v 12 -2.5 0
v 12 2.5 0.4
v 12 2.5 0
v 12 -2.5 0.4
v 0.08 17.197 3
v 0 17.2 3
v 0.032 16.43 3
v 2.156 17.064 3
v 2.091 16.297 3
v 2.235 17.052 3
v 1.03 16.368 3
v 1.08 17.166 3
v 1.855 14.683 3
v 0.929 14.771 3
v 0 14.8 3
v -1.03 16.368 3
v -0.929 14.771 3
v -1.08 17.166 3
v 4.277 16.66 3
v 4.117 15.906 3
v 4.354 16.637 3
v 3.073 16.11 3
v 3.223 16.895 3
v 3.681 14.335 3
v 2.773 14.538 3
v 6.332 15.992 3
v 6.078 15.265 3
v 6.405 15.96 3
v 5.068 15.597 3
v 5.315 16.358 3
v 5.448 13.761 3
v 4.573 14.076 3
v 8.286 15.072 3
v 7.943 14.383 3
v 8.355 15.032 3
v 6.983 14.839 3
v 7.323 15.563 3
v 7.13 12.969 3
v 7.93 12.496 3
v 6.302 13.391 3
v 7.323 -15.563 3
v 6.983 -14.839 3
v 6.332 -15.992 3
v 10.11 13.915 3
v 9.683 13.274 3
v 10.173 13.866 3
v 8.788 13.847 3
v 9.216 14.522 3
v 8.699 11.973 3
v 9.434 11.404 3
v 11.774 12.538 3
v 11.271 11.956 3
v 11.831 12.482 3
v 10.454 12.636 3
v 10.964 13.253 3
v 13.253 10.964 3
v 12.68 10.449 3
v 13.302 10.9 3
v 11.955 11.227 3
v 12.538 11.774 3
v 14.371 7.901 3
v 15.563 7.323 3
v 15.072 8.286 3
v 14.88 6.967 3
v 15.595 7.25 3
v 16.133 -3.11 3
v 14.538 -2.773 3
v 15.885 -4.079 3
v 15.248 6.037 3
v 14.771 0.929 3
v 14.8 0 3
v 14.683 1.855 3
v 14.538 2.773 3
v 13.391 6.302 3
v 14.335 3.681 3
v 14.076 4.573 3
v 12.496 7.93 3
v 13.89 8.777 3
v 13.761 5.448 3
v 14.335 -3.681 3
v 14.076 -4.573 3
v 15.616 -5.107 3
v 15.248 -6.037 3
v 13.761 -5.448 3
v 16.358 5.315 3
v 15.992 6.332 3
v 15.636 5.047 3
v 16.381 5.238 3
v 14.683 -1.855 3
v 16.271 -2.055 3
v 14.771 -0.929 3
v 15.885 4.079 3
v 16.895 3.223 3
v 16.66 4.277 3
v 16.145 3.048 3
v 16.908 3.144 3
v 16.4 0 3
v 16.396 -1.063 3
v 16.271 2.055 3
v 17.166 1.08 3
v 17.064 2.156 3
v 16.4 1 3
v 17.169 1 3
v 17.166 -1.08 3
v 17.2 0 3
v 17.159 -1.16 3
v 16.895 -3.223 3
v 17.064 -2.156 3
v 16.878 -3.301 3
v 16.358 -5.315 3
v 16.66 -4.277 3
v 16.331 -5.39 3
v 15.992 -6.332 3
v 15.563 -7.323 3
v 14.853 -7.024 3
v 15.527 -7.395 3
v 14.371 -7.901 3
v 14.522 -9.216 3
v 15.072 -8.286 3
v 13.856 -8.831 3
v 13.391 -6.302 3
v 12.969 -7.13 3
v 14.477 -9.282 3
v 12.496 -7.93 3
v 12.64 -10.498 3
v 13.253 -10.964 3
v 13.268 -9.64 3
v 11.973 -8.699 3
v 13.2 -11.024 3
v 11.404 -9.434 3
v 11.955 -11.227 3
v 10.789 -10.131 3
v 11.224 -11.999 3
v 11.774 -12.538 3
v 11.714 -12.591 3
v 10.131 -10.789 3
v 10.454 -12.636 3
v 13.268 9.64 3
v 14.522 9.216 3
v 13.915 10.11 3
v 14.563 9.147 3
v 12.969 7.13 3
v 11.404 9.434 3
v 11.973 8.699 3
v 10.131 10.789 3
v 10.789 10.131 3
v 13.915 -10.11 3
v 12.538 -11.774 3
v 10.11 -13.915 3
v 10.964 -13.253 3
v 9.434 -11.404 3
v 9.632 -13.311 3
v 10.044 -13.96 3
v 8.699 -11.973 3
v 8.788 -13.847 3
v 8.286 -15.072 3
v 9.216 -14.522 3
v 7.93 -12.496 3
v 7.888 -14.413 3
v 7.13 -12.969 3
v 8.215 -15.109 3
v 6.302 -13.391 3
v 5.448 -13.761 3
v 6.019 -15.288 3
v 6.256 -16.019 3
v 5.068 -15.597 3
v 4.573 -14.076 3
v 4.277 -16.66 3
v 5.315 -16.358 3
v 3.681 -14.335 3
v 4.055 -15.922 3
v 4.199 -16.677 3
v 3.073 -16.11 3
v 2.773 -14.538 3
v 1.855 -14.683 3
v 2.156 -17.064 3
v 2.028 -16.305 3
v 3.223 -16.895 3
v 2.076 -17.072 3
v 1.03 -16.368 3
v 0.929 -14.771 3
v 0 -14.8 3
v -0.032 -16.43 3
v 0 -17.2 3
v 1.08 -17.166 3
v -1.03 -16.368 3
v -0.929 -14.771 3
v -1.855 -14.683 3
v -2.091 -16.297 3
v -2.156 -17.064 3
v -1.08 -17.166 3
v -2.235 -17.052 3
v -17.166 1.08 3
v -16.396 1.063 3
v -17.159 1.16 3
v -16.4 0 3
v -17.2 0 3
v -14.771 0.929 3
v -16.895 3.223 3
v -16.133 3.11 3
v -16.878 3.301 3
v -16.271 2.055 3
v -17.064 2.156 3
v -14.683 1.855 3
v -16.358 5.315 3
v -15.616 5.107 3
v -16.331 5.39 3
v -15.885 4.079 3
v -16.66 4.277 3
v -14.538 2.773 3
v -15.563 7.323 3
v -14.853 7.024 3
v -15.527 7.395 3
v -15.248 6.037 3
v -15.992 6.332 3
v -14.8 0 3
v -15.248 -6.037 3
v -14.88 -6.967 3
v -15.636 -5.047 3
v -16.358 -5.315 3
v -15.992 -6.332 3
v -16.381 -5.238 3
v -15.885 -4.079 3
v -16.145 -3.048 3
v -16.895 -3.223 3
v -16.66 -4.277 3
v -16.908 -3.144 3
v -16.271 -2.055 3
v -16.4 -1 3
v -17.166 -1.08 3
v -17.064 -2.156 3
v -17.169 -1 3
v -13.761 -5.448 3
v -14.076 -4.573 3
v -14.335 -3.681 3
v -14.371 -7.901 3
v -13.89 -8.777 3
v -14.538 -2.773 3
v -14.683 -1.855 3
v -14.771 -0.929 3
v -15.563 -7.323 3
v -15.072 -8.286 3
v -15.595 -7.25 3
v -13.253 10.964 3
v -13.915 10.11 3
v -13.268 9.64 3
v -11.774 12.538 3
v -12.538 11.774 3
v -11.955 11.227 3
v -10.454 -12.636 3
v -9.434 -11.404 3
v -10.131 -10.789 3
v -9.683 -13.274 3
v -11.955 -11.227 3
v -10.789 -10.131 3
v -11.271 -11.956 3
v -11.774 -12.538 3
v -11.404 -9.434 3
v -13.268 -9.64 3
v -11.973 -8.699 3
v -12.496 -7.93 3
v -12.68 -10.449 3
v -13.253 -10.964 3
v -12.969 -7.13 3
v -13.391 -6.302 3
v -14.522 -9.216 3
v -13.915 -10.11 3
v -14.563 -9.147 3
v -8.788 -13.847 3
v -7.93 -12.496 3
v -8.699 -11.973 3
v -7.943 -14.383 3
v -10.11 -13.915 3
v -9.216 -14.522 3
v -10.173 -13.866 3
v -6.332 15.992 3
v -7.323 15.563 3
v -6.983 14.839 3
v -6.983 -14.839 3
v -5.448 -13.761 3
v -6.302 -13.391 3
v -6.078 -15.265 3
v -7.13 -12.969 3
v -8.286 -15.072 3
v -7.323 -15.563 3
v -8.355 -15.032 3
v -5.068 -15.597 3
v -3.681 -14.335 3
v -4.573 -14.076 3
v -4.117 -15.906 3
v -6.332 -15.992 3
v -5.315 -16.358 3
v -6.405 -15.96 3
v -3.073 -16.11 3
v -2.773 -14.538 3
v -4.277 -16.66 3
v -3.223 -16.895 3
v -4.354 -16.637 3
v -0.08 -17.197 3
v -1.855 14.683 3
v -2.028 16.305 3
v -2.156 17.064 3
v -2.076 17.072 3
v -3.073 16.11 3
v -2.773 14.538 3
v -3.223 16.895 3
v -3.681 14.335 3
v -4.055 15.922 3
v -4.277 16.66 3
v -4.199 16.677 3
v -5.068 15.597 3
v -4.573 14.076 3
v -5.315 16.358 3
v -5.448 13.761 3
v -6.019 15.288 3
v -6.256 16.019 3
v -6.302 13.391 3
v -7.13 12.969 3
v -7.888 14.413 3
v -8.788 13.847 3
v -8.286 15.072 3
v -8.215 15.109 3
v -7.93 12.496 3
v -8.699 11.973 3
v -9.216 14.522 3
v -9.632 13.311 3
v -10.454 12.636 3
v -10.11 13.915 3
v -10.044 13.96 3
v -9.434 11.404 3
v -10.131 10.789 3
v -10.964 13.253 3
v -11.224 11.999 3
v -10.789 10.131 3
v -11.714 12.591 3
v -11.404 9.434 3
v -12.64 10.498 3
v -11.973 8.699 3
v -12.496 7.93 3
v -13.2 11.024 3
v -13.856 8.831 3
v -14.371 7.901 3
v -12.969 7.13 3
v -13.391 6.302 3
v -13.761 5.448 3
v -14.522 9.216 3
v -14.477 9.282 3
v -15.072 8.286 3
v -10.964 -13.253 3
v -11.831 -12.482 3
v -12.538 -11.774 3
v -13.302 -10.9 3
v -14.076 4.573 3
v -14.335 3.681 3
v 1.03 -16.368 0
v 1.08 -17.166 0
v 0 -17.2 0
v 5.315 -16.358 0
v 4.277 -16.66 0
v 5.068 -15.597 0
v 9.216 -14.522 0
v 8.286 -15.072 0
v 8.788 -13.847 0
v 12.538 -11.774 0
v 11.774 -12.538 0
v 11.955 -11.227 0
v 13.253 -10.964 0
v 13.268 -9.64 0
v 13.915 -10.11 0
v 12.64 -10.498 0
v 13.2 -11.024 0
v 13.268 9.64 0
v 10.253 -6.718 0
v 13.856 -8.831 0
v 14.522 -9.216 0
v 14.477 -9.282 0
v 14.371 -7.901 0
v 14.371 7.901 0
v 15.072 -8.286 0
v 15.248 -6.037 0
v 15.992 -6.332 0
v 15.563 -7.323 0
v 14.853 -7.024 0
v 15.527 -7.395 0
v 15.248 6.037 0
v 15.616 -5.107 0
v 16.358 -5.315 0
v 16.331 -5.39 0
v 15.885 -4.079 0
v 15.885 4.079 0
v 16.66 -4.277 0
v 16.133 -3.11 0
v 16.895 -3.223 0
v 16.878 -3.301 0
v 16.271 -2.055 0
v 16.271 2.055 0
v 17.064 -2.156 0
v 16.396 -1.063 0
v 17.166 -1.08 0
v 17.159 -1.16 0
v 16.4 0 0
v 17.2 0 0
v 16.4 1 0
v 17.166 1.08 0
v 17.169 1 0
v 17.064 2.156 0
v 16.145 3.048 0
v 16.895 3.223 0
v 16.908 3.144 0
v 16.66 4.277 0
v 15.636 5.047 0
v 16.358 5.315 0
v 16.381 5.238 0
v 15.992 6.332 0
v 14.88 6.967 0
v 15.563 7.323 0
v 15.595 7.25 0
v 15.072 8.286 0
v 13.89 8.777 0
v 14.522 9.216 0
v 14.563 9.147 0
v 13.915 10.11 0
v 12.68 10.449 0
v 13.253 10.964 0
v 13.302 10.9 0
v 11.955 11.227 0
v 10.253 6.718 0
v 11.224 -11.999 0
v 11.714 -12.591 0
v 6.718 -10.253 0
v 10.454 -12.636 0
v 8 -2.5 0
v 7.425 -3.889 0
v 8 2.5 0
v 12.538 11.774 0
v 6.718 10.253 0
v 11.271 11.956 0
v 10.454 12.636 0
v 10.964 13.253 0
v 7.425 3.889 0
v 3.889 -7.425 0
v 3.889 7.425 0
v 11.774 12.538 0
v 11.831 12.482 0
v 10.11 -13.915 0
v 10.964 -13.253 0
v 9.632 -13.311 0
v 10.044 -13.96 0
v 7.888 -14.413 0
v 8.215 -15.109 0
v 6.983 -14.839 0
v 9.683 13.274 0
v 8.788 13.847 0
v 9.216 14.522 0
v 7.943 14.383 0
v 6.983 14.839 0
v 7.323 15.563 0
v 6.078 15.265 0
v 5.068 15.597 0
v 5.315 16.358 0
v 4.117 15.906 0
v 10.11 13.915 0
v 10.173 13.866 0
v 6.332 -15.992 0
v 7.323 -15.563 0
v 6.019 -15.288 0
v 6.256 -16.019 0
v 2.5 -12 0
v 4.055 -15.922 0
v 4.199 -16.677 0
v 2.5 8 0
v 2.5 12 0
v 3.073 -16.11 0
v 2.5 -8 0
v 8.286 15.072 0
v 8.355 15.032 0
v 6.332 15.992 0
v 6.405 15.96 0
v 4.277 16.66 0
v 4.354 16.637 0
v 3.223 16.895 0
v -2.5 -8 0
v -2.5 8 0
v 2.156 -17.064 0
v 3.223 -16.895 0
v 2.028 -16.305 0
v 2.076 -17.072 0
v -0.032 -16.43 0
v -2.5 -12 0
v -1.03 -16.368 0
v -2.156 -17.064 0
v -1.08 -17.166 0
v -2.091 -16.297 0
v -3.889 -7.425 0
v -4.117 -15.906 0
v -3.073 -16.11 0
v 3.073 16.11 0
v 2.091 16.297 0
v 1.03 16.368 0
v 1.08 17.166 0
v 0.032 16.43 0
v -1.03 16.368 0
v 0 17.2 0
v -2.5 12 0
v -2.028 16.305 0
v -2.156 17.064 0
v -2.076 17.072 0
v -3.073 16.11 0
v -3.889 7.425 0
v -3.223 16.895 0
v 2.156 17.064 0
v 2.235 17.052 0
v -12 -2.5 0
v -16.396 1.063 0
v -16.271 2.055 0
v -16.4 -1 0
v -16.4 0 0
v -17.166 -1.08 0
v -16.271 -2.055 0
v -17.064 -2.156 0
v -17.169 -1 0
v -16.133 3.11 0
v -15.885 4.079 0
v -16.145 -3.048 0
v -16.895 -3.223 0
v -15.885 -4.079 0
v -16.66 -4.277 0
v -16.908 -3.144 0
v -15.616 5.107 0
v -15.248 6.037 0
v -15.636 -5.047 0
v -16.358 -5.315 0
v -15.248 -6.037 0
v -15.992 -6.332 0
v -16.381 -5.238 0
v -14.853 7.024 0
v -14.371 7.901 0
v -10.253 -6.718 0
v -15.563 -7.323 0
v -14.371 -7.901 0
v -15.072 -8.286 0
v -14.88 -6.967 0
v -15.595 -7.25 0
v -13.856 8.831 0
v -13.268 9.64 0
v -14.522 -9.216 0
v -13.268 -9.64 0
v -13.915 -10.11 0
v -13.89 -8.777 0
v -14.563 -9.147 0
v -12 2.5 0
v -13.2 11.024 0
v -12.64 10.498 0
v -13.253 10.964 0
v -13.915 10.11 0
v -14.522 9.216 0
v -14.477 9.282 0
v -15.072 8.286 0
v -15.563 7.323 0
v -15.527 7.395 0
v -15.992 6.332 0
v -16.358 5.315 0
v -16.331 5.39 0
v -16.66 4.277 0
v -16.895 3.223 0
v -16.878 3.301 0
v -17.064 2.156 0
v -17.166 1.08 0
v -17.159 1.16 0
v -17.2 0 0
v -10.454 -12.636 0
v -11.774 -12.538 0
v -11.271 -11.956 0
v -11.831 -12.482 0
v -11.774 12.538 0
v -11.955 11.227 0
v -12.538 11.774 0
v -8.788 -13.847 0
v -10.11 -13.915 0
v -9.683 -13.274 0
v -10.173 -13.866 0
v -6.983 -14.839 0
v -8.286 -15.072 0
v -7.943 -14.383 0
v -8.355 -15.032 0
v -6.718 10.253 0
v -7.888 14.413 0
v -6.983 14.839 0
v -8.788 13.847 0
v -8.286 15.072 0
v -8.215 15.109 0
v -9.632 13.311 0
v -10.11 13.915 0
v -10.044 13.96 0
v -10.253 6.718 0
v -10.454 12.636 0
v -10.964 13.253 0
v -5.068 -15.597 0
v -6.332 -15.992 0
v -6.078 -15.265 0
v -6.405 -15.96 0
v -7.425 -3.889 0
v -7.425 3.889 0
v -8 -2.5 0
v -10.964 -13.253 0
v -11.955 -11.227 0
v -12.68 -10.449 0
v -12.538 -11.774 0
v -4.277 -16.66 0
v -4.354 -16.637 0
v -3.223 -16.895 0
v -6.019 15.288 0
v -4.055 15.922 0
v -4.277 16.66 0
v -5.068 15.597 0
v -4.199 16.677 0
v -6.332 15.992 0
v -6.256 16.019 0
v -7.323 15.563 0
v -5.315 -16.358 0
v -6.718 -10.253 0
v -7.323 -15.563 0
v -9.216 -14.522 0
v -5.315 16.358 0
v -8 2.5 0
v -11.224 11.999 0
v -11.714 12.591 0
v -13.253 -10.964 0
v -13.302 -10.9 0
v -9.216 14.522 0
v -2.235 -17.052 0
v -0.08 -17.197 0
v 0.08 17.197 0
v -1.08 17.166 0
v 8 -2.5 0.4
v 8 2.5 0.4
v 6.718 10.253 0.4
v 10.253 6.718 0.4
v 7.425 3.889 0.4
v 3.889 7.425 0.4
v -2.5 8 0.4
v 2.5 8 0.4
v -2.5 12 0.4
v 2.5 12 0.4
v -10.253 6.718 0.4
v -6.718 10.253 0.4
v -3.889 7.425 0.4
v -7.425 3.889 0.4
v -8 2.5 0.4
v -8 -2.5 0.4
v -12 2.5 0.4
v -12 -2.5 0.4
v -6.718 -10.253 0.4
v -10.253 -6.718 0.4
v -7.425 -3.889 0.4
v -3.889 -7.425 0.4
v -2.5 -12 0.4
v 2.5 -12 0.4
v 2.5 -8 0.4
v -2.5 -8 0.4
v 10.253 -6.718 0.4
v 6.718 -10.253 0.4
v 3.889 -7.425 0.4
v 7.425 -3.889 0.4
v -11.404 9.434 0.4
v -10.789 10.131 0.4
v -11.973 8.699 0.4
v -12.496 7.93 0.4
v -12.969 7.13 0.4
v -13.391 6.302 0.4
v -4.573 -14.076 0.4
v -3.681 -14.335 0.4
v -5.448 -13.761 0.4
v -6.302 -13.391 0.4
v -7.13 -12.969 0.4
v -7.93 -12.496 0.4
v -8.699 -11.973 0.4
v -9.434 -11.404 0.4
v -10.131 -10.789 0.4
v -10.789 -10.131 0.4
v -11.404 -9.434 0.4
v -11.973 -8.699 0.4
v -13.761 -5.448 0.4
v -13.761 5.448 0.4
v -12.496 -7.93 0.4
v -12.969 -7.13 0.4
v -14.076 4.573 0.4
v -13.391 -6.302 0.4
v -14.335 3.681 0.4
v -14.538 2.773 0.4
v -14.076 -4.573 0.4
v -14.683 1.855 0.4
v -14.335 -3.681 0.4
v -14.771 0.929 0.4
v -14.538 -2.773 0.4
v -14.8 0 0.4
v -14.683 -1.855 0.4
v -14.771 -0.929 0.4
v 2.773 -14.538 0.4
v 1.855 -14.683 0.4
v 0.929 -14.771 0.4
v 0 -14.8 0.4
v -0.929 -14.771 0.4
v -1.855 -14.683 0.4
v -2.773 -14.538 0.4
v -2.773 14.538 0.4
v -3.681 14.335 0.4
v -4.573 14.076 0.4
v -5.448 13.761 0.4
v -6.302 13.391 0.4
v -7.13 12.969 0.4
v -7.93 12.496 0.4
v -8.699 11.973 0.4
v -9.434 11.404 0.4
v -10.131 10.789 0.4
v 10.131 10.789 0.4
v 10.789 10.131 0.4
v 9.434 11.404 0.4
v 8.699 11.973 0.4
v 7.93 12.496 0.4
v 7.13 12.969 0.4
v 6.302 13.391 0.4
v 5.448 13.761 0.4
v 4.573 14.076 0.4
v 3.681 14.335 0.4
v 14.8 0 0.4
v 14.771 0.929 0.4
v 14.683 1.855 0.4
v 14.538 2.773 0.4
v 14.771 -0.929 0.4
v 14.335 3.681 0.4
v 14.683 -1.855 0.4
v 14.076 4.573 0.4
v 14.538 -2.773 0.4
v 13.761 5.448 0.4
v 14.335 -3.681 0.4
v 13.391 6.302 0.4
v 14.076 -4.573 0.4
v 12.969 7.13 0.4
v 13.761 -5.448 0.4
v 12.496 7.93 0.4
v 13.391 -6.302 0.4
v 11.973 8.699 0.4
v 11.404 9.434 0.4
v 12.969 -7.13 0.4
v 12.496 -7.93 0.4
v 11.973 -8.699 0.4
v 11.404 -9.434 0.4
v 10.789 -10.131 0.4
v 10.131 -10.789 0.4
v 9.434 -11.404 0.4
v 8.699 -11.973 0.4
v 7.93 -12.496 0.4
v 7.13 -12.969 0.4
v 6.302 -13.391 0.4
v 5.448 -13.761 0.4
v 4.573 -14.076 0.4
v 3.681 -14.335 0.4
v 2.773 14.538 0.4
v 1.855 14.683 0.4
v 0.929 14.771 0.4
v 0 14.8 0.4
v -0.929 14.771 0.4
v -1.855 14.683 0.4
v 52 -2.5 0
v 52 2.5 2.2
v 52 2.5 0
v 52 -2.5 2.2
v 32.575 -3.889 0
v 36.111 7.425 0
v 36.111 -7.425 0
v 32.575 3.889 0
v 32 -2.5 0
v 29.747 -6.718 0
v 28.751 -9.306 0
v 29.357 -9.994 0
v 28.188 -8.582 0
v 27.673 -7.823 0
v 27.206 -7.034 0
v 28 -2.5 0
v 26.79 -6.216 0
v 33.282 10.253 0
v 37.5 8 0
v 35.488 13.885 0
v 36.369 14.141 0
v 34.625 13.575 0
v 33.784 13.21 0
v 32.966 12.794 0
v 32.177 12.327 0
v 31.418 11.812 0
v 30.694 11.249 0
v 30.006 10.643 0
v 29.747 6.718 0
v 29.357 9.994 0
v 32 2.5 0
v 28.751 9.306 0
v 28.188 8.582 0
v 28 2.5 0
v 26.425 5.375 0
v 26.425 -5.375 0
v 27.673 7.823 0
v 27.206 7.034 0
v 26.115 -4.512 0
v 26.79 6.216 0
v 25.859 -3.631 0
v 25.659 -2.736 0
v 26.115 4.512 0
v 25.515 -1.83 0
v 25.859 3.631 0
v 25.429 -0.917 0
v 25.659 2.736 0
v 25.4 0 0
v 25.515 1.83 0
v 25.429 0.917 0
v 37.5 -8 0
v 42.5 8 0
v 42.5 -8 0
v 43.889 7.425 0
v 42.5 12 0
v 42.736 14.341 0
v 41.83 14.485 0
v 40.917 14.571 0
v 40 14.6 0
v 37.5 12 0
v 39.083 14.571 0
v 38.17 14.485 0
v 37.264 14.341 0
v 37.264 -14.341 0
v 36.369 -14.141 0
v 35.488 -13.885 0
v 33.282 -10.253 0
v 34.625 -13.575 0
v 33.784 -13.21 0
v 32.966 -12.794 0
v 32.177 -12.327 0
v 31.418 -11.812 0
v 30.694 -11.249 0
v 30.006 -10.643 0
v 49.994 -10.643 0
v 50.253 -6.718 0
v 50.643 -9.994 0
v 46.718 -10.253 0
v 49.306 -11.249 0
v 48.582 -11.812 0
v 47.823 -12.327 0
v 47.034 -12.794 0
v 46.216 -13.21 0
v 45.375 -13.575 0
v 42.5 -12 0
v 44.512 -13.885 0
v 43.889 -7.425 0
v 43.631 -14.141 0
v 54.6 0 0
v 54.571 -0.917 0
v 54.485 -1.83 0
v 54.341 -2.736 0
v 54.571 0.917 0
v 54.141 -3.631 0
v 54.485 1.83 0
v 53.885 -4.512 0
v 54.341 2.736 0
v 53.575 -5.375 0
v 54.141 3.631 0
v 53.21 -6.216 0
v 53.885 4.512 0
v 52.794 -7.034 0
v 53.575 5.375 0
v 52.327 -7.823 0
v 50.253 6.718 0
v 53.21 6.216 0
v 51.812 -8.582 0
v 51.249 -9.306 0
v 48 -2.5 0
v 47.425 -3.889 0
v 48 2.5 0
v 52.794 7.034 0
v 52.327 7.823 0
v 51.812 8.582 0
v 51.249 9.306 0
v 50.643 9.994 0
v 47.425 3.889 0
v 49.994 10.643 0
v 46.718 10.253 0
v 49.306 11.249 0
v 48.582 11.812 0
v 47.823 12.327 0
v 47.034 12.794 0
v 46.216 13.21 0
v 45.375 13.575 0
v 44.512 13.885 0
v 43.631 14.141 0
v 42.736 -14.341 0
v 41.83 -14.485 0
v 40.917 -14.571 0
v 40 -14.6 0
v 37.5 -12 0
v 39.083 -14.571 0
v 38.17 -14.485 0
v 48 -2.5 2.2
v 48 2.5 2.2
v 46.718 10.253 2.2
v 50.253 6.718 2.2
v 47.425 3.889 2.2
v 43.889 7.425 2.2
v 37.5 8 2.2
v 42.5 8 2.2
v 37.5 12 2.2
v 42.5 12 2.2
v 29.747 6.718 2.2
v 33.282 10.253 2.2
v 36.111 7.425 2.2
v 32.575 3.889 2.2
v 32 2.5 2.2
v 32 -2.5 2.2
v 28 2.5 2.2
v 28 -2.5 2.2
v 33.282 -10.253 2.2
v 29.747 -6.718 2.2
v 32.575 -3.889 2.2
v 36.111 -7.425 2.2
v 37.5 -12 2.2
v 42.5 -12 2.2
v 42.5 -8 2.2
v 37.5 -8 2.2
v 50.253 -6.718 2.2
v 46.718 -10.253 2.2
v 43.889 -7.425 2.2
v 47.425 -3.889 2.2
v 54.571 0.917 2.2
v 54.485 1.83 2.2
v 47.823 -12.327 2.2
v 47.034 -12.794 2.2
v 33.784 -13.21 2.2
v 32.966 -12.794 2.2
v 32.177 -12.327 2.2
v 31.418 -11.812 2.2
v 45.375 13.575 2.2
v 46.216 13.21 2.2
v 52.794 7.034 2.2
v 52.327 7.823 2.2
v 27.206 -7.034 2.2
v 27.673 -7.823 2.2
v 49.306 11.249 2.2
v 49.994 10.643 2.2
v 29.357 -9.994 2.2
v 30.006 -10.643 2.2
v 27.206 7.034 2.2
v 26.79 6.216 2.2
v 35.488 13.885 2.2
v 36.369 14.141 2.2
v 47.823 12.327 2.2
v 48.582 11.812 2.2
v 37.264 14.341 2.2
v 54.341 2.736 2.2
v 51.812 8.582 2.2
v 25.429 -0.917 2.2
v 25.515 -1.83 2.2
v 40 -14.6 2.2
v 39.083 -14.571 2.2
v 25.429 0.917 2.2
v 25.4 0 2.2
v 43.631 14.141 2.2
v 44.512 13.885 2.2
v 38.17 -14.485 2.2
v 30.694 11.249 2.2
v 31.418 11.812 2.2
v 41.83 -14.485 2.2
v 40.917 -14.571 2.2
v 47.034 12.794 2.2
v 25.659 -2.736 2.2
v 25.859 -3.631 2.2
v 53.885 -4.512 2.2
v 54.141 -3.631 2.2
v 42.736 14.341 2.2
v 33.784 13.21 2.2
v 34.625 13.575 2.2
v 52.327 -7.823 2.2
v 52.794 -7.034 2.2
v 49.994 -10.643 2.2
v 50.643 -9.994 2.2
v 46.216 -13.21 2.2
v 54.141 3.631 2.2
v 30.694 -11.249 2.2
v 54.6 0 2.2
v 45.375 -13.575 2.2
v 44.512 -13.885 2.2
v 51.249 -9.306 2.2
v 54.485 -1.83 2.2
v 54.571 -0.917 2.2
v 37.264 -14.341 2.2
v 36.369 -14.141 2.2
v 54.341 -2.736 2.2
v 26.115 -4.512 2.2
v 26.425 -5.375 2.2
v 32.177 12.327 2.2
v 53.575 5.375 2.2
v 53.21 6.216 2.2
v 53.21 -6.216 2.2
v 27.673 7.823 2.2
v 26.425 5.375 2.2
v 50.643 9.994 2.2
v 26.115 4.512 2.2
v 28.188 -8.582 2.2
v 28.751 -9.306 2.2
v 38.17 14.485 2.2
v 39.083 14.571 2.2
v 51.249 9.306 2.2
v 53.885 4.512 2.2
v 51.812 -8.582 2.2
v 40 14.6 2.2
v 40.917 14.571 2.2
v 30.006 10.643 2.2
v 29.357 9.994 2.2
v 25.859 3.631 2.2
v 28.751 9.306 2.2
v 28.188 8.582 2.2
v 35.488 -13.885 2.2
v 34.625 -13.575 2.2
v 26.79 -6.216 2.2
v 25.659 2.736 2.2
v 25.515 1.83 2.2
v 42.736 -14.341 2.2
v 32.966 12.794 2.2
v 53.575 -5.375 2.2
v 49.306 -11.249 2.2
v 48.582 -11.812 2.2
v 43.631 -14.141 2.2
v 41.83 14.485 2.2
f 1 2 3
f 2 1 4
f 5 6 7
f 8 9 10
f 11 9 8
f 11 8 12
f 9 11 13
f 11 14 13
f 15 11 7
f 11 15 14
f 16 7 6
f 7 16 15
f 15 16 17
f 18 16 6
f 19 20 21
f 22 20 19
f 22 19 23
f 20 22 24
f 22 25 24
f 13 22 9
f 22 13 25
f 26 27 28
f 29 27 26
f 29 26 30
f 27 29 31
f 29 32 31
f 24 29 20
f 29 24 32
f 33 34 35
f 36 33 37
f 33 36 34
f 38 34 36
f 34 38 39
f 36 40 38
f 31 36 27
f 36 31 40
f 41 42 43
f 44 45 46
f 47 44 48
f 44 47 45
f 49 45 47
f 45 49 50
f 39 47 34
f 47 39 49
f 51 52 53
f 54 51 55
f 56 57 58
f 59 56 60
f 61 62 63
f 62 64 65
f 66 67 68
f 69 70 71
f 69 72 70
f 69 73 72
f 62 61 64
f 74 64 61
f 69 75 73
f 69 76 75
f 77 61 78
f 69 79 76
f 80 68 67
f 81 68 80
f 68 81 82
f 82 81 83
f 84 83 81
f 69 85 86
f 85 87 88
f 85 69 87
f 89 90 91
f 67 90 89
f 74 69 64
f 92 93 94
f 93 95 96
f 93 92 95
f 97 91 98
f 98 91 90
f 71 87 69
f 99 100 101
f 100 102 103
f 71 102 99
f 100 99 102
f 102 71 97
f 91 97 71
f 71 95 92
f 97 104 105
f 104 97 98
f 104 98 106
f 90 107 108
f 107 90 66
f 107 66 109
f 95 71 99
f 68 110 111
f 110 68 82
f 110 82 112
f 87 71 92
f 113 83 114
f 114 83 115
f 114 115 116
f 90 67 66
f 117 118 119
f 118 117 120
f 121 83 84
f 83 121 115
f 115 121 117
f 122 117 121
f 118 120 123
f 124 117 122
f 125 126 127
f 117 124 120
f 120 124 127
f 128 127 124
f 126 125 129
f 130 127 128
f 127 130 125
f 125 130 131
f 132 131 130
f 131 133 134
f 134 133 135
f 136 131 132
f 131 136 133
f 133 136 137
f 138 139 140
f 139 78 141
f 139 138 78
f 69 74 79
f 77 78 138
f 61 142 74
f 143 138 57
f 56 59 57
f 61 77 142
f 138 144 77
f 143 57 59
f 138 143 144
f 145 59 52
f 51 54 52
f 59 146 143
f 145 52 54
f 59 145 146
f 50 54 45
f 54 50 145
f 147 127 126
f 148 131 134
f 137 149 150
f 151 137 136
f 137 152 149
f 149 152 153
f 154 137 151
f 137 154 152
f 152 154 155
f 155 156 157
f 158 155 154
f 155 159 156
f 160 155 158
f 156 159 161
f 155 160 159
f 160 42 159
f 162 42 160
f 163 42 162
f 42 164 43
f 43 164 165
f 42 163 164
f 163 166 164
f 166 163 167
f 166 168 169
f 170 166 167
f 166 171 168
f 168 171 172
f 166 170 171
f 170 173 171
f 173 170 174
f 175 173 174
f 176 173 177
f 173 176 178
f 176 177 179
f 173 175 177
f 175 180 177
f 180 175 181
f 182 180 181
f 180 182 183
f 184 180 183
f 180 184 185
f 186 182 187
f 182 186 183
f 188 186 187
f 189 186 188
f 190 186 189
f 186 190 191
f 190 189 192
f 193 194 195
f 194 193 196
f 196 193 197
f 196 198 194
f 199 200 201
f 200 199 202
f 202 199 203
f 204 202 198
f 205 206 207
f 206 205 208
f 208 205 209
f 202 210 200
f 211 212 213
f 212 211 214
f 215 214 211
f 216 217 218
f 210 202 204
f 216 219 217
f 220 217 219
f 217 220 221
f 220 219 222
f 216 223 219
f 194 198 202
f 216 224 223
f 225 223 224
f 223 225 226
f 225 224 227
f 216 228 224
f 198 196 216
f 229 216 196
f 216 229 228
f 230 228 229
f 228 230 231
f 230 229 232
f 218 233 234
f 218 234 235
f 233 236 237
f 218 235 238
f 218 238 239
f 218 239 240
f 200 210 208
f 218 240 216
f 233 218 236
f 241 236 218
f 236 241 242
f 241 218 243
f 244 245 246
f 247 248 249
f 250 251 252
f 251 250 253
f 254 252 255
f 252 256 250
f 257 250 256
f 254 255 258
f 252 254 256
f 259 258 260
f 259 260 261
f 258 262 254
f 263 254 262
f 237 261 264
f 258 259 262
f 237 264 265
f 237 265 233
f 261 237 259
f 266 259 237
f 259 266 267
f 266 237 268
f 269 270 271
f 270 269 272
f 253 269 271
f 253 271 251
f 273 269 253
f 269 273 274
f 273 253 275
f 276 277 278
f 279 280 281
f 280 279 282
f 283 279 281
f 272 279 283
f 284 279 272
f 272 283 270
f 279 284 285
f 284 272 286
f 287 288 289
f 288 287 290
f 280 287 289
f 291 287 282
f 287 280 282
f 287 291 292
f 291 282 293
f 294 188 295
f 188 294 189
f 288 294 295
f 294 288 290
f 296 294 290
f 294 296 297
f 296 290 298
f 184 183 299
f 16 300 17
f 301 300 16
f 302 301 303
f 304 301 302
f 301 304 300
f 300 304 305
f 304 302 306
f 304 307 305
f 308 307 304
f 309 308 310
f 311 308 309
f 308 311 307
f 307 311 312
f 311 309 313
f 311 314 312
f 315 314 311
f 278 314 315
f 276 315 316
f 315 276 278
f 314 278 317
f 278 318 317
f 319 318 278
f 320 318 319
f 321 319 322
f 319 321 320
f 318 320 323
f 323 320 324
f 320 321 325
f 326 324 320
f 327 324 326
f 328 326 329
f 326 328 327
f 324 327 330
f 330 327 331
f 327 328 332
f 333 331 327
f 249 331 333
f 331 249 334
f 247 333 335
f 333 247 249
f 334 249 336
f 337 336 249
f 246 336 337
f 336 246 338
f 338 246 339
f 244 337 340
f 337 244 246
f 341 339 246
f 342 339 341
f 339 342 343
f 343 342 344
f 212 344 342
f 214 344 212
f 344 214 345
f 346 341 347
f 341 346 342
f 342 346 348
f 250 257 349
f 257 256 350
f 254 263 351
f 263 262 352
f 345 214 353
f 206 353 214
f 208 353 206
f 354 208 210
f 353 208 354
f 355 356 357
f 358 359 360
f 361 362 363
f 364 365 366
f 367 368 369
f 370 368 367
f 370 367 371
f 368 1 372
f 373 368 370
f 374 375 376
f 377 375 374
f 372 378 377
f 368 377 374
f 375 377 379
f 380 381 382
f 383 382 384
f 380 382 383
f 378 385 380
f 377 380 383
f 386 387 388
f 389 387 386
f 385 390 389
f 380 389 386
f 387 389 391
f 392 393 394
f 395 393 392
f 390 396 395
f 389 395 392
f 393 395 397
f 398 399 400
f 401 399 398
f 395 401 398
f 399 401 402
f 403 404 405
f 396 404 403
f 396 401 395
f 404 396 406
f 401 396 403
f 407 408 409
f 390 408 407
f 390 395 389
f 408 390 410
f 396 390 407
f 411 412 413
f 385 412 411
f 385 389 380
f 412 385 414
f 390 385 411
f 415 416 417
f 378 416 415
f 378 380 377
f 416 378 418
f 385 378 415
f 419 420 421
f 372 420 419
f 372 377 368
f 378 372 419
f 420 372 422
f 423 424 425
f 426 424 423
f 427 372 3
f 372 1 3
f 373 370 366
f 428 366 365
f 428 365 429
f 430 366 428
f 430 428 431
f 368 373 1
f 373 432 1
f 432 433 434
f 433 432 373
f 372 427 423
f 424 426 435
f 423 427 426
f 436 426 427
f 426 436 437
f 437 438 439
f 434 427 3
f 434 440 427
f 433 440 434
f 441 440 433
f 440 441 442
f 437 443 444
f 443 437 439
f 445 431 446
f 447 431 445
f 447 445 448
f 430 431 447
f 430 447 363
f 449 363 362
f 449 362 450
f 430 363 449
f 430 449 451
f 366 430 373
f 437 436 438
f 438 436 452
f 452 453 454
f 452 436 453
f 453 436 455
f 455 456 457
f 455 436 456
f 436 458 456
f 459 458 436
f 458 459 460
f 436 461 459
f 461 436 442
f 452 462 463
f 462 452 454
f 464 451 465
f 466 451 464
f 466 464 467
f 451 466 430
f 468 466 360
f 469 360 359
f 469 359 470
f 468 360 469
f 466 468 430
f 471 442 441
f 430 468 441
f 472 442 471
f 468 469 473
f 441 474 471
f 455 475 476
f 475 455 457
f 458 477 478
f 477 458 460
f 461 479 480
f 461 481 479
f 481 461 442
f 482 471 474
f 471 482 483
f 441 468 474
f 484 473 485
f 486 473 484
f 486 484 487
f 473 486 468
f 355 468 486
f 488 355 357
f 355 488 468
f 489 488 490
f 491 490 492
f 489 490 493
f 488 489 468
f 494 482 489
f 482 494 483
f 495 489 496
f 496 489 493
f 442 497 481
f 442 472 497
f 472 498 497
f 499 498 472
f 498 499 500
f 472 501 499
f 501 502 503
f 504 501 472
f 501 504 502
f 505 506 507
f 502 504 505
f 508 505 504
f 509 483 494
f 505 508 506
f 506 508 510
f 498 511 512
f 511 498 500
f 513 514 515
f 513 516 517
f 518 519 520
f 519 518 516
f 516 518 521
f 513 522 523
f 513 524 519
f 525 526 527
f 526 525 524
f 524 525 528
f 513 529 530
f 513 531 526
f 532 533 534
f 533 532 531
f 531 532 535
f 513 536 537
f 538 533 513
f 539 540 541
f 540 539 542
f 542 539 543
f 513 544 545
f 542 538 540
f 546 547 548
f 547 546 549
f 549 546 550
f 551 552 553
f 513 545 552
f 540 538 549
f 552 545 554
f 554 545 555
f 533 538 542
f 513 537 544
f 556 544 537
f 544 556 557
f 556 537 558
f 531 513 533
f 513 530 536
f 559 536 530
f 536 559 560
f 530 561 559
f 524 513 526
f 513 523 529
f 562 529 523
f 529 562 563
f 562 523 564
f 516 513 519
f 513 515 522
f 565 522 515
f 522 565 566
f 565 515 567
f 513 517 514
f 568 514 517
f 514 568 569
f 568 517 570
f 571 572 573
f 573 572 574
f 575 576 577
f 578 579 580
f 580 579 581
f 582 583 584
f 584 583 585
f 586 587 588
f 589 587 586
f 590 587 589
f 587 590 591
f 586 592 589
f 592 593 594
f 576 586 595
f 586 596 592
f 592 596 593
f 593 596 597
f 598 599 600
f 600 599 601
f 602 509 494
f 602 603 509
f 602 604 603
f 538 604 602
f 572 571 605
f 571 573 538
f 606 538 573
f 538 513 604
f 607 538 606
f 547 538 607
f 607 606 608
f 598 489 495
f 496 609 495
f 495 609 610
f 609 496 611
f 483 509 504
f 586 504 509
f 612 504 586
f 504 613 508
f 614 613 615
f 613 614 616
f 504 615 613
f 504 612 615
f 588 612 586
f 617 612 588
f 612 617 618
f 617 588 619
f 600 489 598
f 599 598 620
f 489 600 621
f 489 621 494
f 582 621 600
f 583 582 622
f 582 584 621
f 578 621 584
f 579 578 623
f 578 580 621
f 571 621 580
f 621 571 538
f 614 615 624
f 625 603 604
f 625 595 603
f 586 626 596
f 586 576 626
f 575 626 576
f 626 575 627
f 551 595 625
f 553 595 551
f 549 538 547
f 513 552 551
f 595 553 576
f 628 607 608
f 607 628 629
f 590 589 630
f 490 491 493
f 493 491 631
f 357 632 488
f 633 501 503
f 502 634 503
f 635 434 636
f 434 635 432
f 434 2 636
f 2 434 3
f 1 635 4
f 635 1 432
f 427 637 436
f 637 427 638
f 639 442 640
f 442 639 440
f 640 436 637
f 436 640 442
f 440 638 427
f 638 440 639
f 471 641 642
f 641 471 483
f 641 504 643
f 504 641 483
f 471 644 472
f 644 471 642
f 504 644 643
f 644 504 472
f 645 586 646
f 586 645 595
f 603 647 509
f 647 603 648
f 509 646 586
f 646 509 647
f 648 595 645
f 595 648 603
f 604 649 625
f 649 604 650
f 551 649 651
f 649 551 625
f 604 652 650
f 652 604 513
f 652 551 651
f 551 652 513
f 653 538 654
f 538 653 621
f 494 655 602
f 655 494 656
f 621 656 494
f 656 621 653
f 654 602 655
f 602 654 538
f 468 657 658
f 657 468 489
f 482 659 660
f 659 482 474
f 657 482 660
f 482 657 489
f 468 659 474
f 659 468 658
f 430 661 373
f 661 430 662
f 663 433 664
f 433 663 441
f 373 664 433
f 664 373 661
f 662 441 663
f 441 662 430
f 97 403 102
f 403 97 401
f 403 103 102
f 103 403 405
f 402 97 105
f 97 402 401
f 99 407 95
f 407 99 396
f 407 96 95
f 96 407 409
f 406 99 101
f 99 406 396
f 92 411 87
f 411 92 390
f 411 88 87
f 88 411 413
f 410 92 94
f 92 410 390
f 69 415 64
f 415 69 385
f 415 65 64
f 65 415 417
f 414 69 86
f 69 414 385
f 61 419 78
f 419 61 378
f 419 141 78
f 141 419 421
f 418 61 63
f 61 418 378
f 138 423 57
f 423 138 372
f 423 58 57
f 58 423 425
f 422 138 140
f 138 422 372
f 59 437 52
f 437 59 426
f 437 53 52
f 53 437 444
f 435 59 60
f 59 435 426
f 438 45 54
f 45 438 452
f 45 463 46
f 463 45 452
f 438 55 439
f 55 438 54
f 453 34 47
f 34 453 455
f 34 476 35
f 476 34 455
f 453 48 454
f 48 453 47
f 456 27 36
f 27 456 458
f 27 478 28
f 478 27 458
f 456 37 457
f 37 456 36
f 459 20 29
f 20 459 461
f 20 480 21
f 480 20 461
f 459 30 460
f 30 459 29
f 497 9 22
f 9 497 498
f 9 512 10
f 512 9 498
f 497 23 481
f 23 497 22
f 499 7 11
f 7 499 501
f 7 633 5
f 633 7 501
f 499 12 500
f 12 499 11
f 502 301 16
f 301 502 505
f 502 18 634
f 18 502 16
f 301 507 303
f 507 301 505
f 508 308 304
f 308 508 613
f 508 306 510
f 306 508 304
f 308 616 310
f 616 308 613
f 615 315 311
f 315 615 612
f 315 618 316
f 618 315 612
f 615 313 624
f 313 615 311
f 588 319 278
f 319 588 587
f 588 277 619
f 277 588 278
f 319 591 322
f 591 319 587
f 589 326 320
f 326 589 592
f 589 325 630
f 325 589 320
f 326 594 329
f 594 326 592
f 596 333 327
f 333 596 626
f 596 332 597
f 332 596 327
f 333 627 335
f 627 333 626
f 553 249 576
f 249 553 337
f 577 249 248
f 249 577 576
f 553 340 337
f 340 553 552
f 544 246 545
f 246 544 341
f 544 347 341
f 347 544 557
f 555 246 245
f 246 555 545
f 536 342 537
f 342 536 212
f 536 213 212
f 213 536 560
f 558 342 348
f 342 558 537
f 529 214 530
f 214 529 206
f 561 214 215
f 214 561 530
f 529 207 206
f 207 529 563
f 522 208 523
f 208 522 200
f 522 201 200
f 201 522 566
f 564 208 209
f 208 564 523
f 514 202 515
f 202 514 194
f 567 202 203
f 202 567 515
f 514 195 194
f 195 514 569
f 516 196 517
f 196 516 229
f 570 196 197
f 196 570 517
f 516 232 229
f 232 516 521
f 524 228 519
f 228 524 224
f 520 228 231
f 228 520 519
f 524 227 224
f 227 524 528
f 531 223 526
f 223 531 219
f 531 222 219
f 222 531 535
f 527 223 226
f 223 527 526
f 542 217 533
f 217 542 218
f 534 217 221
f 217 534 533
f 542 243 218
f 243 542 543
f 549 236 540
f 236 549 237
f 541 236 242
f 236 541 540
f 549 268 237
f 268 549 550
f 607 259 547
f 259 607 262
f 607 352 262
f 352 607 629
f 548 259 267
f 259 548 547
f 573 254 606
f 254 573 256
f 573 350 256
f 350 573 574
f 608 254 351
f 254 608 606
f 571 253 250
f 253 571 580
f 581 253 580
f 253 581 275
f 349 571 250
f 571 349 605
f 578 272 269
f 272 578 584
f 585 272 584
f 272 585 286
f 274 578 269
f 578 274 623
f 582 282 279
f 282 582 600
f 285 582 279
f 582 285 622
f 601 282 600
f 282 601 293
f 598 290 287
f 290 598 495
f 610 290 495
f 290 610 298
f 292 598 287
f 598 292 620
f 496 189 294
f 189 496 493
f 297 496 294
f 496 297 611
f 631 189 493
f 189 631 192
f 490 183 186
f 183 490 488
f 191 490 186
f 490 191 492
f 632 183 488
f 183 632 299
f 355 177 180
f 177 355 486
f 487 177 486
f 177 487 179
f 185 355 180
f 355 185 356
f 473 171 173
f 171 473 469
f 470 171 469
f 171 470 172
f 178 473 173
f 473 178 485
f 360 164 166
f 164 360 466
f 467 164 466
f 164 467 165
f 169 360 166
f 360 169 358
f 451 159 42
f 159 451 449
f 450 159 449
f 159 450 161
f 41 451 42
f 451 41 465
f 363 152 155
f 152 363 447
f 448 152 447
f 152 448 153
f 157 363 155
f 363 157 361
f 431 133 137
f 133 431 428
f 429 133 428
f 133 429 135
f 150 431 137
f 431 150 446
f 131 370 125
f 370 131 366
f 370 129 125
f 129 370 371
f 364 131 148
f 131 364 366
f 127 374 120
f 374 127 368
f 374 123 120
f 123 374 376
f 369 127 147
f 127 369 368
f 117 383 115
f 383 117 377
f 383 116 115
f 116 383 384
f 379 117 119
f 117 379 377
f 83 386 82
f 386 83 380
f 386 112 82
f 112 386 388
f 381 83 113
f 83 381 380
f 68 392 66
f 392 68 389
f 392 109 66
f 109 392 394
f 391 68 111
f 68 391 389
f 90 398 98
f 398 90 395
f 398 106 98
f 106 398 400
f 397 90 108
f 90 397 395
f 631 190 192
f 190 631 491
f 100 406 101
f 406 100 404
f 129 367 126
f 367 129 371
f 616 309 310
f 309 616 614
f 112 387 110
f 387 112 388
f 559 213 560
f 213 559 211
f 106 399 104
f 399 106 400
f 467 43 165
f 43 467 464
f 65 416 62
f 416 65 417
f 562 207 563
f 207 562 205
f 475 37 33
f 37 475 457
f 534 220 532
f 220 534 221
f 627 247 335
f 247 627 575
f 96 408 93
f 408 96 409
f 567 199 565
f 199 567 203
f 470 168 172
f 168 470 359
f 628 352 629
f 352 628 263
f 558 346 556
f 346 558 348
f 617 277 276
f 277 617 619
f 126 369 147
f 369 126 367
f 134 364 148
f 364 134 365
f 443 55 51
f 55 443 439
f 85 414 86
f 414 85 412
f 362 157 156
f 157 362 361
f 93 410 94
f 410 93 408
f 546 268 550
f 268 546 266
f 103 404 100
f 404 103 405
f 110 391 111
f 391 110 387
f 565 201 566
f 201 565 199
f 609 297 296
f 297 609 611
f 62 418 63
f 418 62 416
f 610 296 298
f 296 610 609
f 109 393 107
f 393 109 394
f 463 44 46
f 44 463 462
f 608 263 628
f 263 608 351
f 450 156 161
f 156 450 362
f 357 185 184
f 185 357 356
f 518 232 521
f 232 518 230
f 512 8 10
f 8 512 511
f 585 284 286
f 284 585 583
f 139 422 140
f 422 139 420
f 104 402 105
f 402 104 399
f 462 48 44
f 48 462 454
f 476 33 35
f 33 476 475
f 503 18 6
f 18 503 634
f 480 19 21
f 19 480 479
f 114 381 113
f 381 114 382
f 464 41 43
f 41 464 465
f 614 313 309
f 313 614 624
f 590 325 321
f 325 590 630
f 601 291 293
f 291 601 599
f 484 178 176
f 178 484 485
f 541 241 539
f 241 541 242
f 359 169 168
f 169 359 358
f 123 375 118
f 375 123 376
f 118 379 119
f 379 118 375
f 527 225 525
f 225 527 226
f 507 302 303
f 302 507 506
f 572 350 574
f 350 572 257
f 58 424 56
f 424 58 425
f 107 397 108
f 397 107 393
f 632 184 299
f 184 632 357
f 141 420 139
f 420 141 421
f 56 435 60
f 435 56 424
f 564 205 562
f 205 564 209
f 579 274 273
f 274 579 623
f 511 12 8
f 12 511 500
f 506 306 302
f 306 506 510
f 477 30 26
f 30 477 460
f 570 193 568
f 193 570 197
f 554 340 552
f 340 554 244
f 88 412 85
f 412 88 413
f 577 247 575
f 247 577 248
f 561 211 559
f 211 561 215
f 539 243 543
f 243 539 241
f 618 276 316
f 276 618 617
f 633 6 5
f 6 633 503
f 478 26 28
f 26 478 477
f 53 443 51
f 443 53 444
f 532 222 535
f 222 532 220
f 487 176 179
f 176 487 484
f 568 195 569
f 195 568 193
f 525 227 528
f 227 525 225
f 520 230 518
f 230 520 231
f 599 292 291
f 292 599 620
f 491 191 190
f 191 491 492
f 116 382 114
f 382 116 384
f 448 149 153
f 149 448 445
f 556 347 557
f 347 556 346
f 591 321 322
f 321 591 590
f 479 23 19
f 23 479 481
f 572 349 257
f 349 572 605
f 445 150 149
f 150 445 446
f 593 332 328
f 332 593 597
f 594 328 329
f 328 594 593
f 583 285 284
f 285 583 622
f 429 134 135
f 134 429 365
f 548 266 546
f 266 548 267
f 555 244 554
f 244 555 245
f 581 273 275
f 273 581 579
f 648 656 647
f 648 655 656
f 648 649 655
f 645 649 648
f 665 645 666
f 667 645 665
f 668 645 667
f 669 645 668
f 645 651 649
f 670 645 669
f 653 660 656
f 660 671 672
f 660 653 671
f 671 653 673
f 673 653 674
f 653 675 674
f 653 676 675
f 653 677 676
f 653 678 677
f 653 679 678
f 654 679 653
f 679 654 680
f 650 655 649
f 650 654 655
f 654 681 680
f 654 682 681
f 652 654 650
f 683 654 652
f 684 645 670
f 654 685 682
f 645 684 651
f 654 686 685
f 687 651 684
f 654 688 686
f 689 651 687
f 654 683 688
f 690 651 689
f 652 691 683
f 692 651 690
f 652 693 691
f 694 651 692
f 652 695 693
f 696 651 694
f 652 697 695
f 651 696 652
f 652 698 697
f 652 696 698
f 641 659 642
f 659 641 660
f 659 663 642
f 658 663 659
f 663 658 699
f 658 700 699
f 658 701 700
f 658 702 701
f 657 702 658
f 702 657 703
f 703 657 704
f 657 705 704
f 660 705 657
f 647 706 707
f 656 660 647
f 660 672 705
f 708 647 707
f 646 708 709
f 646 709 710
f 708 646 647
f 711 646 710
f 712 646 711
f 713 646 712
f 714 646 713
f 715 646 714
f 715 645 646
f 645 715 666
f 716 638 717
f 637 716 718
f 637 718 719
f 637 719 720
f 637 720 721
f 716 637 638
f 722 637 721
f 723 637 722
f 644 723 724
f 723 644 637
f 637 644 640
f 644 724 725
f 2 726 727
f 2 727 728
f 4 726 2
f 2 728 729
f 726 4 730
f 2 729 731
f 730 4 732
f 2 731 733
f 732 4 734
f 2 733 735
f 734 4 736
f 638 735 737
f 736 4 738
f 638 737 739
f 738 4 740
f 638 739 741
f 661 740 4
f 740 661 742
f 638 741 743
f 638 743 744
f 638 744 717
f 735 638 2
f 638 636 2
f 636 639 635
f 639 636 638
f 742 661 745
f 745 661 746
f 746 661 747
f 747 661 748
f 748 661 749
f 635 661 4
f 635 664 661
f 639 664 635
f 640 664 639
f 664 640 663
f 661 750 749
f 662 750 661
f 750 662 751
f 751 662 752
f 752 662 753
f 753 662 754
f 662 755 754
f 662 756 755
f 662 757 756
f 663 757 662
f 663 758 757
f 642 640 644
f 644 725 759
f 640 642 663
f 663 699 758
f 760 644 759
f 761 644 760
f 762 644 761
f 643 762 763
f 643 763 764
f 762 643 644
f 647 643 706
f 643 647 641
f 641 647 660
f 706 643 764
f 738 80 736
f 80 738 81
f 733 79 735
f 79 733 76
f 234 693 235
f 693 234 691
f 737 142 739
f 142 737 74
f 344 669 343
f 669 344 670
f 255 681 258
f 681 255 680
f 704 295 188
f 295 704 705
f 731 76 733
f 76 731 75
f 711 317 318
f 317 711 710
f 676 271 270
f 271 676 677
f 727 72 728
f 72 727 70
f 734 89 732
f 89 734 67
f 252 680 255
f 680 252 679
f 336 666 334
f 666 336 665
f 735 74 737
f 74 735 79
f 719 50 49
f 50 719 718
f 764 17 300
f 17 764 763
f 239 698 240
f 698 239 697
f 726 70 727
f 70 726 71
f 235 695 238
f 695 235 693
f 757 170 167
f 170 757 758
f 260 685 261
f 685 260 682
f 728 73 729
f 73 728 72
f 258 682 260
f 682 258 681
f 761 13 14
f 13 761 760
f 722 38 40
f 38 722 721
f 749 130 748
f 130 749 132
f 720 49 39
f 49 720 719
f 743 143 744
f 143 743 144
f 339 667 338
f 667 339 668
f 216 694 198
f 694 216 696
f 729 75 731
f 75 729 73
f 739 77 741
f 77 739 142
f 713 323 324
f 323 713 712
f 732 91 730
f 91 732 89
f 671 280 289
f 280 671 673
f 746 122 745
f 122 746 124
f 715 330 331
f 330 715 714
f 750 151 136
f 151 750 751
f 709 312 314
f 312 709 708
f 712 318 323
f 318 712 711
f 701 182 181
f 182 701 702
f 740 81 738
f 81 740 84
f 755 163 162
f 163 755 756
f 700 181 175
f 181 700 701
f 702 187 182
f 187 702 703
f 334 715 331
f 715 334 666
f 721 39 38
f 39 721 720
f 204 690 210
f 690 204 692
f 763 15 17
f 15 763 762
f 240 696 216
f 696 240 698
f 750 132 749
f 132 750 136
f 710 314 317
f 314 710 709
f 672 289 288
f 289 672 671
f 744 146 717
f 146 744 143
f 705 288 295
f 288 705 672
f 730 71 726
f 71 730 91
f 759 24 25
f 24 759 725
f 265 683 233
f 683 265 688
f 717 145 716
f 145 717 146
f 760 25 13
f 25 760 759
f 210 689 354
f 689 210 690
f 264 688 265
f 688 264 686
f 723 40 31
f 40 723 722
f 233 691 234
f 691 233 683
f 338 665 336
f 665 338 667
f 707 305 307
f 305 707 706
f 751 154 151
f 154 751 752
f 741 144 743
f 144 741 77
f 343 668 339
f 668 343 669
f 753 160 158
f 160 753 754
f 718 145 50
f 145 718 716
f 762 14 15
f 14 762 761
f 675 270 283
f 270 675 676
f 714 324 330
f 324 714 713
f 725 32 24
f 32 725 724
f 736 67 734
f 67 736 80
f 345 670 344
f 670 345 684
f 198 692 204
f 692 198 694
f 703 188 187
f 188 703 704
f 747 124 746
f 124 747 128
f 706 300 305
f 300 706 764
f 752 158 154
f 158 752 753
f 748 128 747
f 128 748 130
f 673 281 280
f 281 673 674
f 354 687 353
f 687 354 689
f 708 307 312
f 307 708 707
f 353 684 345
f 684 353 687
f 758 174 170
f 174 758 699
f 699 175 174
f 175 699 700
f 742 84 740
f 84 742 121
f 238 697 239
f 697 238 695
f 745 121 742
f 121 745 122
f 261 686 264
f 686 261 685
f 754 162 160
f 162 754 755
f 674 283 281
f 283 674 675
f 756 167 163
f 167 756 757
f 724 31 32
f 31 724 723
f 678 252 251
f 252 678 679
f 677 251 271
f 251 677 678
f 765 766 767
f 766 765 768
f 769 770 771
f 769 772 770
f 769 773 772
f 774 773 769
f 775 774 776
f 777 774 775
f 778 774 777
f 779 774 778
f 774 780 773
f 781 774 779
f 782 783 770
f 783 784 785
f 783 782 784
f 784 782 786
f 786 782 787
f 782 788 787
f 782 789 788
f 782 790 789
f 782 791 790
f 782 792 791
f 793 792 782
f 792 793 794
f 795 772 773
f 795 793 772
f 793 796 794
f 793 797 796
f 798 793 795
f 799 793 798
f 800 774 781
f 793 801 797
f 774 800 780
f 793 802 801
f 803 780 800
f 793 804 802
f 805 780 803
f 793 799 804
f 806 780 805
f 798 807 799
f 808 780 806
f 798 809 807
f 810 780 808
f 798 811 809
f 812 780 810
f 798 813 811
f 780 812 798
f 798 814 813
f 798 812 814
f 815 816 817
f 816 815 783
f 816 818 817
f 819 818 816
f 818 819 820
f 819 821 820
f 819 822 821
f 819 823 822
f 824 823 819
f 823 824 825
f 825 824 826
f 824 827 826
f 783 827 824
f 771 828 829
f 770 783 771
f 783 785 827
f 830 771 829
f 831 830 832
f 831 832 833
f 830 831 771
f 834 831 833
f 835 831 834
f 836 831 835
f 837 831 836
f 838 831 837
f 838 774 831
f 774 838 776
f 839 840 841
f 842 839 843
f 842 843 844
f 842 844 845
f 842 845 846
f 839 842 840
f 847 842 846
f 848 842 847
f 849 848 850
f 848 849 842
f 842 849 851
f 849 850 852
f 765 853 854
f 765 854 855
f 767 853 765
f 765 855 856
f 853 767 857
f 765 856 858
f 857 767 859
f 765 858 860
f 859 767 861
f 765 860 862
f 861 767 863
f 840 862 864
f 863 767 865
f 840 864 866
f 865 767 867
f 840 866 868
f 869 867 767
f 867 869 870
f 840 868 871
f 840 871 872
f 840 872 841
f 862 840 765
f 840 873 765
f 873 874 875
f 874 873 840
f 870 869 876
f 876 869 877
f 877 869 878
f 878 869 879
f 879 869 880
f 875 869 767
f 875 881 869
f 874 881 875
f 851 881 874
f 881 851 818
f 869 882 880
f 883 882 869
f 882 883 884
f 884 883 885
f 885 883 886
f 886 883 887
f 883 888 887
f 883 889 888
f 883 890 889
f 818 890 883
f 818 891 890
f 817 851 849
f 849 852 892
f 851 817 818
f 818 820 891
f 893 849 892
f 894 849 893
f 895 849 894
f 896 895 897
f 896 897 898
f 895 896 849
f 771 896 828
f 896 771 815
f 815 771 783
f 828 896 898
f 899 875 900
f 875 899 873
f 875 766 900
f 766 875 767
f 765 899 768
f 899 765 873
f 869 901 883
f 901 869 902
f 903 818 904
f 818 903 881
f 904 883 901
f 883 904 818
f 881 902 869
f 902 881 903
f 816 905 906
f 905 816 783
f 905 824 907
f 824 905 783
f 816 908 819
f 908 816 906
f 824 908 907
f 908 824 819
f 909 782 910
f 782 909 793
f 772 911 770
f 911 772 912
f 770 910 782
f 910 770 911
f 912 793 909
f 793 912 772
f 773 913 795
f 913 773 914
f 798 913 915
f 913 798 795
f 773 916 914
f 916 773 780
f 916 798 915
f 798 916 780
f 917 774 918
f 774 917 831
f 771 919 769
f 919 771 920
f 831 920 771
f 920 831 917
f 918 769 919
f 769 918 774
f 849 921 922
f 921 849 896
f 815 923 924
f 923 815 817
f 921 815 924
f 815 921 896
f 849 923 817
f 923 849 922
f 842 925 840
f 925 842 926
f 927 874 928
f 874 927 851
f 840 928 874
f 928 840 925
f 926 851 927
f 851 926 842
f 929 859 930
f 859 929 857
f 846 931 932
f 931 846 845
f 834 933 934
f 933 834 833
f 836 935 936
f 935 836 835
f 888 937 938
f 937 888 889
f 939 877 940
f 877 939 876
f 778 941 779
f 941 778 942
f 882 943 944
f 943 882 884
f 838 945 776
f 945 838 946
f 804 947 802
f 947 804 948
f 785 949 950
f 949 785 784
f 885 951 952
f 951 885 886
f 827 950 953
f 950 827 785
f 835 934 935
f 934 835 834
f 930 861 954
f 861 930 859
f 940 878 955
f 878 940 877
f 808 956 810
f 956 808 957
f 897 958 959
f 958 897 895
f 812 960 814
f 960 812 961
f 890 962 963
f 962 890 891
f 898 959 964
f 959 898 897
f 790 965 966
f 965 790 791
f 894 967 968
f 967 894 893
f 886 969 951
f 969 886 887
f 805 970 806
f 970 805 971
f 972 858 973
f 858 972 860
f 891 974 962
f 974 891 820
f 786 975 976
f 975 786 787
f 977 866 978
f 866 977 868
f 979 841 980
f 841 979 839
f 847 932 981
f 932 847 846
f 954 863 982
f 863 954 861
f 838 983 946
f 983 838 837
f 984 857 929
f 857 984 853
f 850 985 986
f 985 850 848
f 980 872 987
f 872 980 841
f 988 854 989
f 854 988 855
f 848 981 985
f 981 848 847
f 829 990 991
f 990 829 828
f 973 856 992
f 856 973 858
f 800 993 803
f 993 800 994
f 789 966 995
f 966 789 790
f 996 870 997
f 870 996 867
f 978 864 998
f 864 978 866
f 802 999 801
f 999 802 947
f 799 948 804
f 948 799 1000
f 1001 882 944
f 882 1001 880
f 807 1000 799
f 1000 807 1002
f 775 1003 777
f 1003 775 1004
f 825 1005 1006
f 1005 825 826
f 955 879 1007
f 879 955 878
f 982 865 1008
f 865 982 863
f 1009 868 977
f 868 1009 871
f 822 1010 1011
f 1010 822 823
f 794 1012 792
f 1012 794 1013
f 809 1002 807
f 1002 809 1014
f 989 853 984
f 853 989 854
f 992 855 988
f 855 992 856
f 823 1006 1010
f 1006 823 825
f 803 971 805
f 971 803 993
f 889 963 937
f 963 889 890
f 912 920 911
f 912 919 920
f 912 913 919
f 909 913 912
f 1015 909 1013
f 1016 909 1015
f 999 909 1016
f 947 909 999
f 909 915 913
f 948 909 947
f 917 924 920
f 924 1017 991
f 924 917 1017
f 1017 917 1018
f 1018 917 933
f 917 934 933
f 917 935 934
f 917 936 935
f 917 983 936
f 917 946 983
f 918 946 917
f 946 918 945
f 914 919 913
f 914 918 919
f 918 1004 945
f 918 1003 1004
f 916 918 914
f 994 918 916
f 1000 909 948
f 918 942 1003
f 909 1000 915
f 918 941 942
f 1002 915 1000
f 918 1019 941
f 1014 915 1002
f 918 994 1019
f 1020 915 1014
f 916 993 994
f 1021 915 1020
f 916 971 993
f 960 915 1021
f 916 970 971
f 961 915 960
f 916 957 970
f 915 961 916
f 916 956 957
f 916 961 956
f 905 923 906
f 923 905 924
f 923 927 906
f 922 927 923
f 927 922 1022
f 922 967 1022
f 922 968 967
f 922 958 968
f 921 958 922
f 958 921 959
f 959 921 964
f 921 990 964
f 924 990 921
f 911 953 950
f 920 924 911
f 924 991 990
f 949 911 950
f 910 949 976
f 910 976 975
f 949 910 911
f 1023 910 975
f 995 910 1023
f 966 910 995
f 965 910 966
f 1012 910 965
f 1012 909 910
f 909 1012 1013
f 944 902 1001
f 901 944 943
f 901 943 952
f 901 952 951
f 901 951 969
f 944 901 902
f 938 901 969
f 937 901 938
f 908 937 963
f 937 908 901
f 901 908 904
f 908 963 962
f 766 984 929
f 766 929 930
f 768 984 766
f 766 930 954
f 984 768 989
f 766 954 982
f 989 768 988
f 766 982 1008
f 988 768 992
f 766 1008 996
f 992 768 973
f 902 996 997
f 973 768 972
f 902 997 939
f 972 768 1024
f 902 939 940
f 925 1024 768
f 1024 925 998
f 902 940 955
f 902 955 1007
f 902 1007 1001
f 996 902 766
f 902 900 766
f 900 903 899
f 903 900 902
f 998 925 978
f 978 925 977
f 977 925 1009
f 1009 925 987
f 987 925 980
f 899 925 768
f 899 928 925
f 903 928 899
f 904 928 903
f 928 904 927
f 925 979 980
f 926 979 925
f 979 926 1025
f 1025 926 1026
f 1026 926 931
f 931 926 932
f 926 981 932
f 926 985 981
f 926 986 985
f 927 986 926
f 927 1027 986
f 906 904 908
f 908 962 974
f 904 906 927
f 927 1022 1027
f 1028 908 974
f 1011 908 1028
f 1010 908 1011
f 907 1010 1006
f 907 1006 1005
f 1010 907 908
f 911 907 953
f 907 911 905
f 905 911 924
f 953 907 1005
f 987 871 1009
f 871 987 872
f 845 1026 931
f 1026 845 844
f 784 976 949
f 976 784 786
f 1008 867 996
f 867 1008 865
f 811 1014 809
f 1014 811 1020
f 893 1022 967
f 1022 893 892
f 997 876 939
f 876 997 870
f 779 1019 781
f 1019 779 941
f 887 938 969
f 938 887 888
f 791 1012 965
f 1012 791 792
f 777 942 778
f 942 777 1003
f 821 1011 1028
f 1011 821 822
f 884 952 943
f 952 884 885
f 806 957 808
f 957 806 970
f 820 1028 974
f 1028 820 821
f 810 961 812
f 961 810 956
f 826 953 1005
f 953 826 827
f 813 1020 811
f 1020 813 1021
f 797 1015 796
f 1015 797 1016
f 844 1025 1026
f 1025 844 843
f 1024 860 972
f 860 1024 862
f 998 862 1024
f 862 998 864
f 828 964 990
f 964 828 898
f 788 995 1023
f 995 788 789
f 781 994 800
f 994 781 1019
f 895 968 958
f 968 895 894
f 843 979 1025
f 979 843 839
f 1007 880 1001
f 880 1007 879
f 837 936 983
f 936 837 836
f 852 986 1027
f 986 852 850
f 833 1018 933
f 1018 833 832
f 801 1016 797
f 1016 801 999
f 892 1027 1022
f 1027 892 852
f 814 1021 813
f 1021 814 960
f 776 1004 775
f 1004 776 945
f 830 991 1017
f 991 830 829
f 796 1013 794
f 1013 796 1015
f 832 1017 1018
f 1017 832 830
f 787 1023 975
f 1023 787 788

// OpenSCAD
$fn=100;

window_x=4;
window_y=5;
window_distance_from_center=8;
diameter=30;
windows=8;
degrees=360/windows;
thickness=3;
tolerance=0.4;
ridges=50;
ridge_size=2;

difference() {
  
  cylinder(d=diameter+ridge_size*2+tolerance,h=thickness);

  //windows
  for(i=[0:windows])
    rotate([0,0,degrees*i]) 
      translate([window_distance_from_center,-window_y/2,0])  
        cube([window_x,window_y,thickness]);
  translate([0,0,tolerance]) 
    cylinder(d=diameter-tolerance,h=thickness);
  //ridges 
  for(i=[0:ridges])
    rotate([0,0,(360/ridges)*i]) 
      translate([diameter/2+ridge_size/2+tolerance,0,0]) 
        #cube([ridge_size,ridge_size/2,thickness]);
}


translate([diameter+10,0,0]) {
  
  difference() {

    cylinder(d=diameter-tolerance*2,h=thickness-tolerance*2);
    
    //windows
    for(i=[0:windows])
      rotate([0,0,degrees*i]) 
        translate([window_distance_from_center,-window_y/2,0])  
          cube([window_x,window_y,thickness]);
  }
}
